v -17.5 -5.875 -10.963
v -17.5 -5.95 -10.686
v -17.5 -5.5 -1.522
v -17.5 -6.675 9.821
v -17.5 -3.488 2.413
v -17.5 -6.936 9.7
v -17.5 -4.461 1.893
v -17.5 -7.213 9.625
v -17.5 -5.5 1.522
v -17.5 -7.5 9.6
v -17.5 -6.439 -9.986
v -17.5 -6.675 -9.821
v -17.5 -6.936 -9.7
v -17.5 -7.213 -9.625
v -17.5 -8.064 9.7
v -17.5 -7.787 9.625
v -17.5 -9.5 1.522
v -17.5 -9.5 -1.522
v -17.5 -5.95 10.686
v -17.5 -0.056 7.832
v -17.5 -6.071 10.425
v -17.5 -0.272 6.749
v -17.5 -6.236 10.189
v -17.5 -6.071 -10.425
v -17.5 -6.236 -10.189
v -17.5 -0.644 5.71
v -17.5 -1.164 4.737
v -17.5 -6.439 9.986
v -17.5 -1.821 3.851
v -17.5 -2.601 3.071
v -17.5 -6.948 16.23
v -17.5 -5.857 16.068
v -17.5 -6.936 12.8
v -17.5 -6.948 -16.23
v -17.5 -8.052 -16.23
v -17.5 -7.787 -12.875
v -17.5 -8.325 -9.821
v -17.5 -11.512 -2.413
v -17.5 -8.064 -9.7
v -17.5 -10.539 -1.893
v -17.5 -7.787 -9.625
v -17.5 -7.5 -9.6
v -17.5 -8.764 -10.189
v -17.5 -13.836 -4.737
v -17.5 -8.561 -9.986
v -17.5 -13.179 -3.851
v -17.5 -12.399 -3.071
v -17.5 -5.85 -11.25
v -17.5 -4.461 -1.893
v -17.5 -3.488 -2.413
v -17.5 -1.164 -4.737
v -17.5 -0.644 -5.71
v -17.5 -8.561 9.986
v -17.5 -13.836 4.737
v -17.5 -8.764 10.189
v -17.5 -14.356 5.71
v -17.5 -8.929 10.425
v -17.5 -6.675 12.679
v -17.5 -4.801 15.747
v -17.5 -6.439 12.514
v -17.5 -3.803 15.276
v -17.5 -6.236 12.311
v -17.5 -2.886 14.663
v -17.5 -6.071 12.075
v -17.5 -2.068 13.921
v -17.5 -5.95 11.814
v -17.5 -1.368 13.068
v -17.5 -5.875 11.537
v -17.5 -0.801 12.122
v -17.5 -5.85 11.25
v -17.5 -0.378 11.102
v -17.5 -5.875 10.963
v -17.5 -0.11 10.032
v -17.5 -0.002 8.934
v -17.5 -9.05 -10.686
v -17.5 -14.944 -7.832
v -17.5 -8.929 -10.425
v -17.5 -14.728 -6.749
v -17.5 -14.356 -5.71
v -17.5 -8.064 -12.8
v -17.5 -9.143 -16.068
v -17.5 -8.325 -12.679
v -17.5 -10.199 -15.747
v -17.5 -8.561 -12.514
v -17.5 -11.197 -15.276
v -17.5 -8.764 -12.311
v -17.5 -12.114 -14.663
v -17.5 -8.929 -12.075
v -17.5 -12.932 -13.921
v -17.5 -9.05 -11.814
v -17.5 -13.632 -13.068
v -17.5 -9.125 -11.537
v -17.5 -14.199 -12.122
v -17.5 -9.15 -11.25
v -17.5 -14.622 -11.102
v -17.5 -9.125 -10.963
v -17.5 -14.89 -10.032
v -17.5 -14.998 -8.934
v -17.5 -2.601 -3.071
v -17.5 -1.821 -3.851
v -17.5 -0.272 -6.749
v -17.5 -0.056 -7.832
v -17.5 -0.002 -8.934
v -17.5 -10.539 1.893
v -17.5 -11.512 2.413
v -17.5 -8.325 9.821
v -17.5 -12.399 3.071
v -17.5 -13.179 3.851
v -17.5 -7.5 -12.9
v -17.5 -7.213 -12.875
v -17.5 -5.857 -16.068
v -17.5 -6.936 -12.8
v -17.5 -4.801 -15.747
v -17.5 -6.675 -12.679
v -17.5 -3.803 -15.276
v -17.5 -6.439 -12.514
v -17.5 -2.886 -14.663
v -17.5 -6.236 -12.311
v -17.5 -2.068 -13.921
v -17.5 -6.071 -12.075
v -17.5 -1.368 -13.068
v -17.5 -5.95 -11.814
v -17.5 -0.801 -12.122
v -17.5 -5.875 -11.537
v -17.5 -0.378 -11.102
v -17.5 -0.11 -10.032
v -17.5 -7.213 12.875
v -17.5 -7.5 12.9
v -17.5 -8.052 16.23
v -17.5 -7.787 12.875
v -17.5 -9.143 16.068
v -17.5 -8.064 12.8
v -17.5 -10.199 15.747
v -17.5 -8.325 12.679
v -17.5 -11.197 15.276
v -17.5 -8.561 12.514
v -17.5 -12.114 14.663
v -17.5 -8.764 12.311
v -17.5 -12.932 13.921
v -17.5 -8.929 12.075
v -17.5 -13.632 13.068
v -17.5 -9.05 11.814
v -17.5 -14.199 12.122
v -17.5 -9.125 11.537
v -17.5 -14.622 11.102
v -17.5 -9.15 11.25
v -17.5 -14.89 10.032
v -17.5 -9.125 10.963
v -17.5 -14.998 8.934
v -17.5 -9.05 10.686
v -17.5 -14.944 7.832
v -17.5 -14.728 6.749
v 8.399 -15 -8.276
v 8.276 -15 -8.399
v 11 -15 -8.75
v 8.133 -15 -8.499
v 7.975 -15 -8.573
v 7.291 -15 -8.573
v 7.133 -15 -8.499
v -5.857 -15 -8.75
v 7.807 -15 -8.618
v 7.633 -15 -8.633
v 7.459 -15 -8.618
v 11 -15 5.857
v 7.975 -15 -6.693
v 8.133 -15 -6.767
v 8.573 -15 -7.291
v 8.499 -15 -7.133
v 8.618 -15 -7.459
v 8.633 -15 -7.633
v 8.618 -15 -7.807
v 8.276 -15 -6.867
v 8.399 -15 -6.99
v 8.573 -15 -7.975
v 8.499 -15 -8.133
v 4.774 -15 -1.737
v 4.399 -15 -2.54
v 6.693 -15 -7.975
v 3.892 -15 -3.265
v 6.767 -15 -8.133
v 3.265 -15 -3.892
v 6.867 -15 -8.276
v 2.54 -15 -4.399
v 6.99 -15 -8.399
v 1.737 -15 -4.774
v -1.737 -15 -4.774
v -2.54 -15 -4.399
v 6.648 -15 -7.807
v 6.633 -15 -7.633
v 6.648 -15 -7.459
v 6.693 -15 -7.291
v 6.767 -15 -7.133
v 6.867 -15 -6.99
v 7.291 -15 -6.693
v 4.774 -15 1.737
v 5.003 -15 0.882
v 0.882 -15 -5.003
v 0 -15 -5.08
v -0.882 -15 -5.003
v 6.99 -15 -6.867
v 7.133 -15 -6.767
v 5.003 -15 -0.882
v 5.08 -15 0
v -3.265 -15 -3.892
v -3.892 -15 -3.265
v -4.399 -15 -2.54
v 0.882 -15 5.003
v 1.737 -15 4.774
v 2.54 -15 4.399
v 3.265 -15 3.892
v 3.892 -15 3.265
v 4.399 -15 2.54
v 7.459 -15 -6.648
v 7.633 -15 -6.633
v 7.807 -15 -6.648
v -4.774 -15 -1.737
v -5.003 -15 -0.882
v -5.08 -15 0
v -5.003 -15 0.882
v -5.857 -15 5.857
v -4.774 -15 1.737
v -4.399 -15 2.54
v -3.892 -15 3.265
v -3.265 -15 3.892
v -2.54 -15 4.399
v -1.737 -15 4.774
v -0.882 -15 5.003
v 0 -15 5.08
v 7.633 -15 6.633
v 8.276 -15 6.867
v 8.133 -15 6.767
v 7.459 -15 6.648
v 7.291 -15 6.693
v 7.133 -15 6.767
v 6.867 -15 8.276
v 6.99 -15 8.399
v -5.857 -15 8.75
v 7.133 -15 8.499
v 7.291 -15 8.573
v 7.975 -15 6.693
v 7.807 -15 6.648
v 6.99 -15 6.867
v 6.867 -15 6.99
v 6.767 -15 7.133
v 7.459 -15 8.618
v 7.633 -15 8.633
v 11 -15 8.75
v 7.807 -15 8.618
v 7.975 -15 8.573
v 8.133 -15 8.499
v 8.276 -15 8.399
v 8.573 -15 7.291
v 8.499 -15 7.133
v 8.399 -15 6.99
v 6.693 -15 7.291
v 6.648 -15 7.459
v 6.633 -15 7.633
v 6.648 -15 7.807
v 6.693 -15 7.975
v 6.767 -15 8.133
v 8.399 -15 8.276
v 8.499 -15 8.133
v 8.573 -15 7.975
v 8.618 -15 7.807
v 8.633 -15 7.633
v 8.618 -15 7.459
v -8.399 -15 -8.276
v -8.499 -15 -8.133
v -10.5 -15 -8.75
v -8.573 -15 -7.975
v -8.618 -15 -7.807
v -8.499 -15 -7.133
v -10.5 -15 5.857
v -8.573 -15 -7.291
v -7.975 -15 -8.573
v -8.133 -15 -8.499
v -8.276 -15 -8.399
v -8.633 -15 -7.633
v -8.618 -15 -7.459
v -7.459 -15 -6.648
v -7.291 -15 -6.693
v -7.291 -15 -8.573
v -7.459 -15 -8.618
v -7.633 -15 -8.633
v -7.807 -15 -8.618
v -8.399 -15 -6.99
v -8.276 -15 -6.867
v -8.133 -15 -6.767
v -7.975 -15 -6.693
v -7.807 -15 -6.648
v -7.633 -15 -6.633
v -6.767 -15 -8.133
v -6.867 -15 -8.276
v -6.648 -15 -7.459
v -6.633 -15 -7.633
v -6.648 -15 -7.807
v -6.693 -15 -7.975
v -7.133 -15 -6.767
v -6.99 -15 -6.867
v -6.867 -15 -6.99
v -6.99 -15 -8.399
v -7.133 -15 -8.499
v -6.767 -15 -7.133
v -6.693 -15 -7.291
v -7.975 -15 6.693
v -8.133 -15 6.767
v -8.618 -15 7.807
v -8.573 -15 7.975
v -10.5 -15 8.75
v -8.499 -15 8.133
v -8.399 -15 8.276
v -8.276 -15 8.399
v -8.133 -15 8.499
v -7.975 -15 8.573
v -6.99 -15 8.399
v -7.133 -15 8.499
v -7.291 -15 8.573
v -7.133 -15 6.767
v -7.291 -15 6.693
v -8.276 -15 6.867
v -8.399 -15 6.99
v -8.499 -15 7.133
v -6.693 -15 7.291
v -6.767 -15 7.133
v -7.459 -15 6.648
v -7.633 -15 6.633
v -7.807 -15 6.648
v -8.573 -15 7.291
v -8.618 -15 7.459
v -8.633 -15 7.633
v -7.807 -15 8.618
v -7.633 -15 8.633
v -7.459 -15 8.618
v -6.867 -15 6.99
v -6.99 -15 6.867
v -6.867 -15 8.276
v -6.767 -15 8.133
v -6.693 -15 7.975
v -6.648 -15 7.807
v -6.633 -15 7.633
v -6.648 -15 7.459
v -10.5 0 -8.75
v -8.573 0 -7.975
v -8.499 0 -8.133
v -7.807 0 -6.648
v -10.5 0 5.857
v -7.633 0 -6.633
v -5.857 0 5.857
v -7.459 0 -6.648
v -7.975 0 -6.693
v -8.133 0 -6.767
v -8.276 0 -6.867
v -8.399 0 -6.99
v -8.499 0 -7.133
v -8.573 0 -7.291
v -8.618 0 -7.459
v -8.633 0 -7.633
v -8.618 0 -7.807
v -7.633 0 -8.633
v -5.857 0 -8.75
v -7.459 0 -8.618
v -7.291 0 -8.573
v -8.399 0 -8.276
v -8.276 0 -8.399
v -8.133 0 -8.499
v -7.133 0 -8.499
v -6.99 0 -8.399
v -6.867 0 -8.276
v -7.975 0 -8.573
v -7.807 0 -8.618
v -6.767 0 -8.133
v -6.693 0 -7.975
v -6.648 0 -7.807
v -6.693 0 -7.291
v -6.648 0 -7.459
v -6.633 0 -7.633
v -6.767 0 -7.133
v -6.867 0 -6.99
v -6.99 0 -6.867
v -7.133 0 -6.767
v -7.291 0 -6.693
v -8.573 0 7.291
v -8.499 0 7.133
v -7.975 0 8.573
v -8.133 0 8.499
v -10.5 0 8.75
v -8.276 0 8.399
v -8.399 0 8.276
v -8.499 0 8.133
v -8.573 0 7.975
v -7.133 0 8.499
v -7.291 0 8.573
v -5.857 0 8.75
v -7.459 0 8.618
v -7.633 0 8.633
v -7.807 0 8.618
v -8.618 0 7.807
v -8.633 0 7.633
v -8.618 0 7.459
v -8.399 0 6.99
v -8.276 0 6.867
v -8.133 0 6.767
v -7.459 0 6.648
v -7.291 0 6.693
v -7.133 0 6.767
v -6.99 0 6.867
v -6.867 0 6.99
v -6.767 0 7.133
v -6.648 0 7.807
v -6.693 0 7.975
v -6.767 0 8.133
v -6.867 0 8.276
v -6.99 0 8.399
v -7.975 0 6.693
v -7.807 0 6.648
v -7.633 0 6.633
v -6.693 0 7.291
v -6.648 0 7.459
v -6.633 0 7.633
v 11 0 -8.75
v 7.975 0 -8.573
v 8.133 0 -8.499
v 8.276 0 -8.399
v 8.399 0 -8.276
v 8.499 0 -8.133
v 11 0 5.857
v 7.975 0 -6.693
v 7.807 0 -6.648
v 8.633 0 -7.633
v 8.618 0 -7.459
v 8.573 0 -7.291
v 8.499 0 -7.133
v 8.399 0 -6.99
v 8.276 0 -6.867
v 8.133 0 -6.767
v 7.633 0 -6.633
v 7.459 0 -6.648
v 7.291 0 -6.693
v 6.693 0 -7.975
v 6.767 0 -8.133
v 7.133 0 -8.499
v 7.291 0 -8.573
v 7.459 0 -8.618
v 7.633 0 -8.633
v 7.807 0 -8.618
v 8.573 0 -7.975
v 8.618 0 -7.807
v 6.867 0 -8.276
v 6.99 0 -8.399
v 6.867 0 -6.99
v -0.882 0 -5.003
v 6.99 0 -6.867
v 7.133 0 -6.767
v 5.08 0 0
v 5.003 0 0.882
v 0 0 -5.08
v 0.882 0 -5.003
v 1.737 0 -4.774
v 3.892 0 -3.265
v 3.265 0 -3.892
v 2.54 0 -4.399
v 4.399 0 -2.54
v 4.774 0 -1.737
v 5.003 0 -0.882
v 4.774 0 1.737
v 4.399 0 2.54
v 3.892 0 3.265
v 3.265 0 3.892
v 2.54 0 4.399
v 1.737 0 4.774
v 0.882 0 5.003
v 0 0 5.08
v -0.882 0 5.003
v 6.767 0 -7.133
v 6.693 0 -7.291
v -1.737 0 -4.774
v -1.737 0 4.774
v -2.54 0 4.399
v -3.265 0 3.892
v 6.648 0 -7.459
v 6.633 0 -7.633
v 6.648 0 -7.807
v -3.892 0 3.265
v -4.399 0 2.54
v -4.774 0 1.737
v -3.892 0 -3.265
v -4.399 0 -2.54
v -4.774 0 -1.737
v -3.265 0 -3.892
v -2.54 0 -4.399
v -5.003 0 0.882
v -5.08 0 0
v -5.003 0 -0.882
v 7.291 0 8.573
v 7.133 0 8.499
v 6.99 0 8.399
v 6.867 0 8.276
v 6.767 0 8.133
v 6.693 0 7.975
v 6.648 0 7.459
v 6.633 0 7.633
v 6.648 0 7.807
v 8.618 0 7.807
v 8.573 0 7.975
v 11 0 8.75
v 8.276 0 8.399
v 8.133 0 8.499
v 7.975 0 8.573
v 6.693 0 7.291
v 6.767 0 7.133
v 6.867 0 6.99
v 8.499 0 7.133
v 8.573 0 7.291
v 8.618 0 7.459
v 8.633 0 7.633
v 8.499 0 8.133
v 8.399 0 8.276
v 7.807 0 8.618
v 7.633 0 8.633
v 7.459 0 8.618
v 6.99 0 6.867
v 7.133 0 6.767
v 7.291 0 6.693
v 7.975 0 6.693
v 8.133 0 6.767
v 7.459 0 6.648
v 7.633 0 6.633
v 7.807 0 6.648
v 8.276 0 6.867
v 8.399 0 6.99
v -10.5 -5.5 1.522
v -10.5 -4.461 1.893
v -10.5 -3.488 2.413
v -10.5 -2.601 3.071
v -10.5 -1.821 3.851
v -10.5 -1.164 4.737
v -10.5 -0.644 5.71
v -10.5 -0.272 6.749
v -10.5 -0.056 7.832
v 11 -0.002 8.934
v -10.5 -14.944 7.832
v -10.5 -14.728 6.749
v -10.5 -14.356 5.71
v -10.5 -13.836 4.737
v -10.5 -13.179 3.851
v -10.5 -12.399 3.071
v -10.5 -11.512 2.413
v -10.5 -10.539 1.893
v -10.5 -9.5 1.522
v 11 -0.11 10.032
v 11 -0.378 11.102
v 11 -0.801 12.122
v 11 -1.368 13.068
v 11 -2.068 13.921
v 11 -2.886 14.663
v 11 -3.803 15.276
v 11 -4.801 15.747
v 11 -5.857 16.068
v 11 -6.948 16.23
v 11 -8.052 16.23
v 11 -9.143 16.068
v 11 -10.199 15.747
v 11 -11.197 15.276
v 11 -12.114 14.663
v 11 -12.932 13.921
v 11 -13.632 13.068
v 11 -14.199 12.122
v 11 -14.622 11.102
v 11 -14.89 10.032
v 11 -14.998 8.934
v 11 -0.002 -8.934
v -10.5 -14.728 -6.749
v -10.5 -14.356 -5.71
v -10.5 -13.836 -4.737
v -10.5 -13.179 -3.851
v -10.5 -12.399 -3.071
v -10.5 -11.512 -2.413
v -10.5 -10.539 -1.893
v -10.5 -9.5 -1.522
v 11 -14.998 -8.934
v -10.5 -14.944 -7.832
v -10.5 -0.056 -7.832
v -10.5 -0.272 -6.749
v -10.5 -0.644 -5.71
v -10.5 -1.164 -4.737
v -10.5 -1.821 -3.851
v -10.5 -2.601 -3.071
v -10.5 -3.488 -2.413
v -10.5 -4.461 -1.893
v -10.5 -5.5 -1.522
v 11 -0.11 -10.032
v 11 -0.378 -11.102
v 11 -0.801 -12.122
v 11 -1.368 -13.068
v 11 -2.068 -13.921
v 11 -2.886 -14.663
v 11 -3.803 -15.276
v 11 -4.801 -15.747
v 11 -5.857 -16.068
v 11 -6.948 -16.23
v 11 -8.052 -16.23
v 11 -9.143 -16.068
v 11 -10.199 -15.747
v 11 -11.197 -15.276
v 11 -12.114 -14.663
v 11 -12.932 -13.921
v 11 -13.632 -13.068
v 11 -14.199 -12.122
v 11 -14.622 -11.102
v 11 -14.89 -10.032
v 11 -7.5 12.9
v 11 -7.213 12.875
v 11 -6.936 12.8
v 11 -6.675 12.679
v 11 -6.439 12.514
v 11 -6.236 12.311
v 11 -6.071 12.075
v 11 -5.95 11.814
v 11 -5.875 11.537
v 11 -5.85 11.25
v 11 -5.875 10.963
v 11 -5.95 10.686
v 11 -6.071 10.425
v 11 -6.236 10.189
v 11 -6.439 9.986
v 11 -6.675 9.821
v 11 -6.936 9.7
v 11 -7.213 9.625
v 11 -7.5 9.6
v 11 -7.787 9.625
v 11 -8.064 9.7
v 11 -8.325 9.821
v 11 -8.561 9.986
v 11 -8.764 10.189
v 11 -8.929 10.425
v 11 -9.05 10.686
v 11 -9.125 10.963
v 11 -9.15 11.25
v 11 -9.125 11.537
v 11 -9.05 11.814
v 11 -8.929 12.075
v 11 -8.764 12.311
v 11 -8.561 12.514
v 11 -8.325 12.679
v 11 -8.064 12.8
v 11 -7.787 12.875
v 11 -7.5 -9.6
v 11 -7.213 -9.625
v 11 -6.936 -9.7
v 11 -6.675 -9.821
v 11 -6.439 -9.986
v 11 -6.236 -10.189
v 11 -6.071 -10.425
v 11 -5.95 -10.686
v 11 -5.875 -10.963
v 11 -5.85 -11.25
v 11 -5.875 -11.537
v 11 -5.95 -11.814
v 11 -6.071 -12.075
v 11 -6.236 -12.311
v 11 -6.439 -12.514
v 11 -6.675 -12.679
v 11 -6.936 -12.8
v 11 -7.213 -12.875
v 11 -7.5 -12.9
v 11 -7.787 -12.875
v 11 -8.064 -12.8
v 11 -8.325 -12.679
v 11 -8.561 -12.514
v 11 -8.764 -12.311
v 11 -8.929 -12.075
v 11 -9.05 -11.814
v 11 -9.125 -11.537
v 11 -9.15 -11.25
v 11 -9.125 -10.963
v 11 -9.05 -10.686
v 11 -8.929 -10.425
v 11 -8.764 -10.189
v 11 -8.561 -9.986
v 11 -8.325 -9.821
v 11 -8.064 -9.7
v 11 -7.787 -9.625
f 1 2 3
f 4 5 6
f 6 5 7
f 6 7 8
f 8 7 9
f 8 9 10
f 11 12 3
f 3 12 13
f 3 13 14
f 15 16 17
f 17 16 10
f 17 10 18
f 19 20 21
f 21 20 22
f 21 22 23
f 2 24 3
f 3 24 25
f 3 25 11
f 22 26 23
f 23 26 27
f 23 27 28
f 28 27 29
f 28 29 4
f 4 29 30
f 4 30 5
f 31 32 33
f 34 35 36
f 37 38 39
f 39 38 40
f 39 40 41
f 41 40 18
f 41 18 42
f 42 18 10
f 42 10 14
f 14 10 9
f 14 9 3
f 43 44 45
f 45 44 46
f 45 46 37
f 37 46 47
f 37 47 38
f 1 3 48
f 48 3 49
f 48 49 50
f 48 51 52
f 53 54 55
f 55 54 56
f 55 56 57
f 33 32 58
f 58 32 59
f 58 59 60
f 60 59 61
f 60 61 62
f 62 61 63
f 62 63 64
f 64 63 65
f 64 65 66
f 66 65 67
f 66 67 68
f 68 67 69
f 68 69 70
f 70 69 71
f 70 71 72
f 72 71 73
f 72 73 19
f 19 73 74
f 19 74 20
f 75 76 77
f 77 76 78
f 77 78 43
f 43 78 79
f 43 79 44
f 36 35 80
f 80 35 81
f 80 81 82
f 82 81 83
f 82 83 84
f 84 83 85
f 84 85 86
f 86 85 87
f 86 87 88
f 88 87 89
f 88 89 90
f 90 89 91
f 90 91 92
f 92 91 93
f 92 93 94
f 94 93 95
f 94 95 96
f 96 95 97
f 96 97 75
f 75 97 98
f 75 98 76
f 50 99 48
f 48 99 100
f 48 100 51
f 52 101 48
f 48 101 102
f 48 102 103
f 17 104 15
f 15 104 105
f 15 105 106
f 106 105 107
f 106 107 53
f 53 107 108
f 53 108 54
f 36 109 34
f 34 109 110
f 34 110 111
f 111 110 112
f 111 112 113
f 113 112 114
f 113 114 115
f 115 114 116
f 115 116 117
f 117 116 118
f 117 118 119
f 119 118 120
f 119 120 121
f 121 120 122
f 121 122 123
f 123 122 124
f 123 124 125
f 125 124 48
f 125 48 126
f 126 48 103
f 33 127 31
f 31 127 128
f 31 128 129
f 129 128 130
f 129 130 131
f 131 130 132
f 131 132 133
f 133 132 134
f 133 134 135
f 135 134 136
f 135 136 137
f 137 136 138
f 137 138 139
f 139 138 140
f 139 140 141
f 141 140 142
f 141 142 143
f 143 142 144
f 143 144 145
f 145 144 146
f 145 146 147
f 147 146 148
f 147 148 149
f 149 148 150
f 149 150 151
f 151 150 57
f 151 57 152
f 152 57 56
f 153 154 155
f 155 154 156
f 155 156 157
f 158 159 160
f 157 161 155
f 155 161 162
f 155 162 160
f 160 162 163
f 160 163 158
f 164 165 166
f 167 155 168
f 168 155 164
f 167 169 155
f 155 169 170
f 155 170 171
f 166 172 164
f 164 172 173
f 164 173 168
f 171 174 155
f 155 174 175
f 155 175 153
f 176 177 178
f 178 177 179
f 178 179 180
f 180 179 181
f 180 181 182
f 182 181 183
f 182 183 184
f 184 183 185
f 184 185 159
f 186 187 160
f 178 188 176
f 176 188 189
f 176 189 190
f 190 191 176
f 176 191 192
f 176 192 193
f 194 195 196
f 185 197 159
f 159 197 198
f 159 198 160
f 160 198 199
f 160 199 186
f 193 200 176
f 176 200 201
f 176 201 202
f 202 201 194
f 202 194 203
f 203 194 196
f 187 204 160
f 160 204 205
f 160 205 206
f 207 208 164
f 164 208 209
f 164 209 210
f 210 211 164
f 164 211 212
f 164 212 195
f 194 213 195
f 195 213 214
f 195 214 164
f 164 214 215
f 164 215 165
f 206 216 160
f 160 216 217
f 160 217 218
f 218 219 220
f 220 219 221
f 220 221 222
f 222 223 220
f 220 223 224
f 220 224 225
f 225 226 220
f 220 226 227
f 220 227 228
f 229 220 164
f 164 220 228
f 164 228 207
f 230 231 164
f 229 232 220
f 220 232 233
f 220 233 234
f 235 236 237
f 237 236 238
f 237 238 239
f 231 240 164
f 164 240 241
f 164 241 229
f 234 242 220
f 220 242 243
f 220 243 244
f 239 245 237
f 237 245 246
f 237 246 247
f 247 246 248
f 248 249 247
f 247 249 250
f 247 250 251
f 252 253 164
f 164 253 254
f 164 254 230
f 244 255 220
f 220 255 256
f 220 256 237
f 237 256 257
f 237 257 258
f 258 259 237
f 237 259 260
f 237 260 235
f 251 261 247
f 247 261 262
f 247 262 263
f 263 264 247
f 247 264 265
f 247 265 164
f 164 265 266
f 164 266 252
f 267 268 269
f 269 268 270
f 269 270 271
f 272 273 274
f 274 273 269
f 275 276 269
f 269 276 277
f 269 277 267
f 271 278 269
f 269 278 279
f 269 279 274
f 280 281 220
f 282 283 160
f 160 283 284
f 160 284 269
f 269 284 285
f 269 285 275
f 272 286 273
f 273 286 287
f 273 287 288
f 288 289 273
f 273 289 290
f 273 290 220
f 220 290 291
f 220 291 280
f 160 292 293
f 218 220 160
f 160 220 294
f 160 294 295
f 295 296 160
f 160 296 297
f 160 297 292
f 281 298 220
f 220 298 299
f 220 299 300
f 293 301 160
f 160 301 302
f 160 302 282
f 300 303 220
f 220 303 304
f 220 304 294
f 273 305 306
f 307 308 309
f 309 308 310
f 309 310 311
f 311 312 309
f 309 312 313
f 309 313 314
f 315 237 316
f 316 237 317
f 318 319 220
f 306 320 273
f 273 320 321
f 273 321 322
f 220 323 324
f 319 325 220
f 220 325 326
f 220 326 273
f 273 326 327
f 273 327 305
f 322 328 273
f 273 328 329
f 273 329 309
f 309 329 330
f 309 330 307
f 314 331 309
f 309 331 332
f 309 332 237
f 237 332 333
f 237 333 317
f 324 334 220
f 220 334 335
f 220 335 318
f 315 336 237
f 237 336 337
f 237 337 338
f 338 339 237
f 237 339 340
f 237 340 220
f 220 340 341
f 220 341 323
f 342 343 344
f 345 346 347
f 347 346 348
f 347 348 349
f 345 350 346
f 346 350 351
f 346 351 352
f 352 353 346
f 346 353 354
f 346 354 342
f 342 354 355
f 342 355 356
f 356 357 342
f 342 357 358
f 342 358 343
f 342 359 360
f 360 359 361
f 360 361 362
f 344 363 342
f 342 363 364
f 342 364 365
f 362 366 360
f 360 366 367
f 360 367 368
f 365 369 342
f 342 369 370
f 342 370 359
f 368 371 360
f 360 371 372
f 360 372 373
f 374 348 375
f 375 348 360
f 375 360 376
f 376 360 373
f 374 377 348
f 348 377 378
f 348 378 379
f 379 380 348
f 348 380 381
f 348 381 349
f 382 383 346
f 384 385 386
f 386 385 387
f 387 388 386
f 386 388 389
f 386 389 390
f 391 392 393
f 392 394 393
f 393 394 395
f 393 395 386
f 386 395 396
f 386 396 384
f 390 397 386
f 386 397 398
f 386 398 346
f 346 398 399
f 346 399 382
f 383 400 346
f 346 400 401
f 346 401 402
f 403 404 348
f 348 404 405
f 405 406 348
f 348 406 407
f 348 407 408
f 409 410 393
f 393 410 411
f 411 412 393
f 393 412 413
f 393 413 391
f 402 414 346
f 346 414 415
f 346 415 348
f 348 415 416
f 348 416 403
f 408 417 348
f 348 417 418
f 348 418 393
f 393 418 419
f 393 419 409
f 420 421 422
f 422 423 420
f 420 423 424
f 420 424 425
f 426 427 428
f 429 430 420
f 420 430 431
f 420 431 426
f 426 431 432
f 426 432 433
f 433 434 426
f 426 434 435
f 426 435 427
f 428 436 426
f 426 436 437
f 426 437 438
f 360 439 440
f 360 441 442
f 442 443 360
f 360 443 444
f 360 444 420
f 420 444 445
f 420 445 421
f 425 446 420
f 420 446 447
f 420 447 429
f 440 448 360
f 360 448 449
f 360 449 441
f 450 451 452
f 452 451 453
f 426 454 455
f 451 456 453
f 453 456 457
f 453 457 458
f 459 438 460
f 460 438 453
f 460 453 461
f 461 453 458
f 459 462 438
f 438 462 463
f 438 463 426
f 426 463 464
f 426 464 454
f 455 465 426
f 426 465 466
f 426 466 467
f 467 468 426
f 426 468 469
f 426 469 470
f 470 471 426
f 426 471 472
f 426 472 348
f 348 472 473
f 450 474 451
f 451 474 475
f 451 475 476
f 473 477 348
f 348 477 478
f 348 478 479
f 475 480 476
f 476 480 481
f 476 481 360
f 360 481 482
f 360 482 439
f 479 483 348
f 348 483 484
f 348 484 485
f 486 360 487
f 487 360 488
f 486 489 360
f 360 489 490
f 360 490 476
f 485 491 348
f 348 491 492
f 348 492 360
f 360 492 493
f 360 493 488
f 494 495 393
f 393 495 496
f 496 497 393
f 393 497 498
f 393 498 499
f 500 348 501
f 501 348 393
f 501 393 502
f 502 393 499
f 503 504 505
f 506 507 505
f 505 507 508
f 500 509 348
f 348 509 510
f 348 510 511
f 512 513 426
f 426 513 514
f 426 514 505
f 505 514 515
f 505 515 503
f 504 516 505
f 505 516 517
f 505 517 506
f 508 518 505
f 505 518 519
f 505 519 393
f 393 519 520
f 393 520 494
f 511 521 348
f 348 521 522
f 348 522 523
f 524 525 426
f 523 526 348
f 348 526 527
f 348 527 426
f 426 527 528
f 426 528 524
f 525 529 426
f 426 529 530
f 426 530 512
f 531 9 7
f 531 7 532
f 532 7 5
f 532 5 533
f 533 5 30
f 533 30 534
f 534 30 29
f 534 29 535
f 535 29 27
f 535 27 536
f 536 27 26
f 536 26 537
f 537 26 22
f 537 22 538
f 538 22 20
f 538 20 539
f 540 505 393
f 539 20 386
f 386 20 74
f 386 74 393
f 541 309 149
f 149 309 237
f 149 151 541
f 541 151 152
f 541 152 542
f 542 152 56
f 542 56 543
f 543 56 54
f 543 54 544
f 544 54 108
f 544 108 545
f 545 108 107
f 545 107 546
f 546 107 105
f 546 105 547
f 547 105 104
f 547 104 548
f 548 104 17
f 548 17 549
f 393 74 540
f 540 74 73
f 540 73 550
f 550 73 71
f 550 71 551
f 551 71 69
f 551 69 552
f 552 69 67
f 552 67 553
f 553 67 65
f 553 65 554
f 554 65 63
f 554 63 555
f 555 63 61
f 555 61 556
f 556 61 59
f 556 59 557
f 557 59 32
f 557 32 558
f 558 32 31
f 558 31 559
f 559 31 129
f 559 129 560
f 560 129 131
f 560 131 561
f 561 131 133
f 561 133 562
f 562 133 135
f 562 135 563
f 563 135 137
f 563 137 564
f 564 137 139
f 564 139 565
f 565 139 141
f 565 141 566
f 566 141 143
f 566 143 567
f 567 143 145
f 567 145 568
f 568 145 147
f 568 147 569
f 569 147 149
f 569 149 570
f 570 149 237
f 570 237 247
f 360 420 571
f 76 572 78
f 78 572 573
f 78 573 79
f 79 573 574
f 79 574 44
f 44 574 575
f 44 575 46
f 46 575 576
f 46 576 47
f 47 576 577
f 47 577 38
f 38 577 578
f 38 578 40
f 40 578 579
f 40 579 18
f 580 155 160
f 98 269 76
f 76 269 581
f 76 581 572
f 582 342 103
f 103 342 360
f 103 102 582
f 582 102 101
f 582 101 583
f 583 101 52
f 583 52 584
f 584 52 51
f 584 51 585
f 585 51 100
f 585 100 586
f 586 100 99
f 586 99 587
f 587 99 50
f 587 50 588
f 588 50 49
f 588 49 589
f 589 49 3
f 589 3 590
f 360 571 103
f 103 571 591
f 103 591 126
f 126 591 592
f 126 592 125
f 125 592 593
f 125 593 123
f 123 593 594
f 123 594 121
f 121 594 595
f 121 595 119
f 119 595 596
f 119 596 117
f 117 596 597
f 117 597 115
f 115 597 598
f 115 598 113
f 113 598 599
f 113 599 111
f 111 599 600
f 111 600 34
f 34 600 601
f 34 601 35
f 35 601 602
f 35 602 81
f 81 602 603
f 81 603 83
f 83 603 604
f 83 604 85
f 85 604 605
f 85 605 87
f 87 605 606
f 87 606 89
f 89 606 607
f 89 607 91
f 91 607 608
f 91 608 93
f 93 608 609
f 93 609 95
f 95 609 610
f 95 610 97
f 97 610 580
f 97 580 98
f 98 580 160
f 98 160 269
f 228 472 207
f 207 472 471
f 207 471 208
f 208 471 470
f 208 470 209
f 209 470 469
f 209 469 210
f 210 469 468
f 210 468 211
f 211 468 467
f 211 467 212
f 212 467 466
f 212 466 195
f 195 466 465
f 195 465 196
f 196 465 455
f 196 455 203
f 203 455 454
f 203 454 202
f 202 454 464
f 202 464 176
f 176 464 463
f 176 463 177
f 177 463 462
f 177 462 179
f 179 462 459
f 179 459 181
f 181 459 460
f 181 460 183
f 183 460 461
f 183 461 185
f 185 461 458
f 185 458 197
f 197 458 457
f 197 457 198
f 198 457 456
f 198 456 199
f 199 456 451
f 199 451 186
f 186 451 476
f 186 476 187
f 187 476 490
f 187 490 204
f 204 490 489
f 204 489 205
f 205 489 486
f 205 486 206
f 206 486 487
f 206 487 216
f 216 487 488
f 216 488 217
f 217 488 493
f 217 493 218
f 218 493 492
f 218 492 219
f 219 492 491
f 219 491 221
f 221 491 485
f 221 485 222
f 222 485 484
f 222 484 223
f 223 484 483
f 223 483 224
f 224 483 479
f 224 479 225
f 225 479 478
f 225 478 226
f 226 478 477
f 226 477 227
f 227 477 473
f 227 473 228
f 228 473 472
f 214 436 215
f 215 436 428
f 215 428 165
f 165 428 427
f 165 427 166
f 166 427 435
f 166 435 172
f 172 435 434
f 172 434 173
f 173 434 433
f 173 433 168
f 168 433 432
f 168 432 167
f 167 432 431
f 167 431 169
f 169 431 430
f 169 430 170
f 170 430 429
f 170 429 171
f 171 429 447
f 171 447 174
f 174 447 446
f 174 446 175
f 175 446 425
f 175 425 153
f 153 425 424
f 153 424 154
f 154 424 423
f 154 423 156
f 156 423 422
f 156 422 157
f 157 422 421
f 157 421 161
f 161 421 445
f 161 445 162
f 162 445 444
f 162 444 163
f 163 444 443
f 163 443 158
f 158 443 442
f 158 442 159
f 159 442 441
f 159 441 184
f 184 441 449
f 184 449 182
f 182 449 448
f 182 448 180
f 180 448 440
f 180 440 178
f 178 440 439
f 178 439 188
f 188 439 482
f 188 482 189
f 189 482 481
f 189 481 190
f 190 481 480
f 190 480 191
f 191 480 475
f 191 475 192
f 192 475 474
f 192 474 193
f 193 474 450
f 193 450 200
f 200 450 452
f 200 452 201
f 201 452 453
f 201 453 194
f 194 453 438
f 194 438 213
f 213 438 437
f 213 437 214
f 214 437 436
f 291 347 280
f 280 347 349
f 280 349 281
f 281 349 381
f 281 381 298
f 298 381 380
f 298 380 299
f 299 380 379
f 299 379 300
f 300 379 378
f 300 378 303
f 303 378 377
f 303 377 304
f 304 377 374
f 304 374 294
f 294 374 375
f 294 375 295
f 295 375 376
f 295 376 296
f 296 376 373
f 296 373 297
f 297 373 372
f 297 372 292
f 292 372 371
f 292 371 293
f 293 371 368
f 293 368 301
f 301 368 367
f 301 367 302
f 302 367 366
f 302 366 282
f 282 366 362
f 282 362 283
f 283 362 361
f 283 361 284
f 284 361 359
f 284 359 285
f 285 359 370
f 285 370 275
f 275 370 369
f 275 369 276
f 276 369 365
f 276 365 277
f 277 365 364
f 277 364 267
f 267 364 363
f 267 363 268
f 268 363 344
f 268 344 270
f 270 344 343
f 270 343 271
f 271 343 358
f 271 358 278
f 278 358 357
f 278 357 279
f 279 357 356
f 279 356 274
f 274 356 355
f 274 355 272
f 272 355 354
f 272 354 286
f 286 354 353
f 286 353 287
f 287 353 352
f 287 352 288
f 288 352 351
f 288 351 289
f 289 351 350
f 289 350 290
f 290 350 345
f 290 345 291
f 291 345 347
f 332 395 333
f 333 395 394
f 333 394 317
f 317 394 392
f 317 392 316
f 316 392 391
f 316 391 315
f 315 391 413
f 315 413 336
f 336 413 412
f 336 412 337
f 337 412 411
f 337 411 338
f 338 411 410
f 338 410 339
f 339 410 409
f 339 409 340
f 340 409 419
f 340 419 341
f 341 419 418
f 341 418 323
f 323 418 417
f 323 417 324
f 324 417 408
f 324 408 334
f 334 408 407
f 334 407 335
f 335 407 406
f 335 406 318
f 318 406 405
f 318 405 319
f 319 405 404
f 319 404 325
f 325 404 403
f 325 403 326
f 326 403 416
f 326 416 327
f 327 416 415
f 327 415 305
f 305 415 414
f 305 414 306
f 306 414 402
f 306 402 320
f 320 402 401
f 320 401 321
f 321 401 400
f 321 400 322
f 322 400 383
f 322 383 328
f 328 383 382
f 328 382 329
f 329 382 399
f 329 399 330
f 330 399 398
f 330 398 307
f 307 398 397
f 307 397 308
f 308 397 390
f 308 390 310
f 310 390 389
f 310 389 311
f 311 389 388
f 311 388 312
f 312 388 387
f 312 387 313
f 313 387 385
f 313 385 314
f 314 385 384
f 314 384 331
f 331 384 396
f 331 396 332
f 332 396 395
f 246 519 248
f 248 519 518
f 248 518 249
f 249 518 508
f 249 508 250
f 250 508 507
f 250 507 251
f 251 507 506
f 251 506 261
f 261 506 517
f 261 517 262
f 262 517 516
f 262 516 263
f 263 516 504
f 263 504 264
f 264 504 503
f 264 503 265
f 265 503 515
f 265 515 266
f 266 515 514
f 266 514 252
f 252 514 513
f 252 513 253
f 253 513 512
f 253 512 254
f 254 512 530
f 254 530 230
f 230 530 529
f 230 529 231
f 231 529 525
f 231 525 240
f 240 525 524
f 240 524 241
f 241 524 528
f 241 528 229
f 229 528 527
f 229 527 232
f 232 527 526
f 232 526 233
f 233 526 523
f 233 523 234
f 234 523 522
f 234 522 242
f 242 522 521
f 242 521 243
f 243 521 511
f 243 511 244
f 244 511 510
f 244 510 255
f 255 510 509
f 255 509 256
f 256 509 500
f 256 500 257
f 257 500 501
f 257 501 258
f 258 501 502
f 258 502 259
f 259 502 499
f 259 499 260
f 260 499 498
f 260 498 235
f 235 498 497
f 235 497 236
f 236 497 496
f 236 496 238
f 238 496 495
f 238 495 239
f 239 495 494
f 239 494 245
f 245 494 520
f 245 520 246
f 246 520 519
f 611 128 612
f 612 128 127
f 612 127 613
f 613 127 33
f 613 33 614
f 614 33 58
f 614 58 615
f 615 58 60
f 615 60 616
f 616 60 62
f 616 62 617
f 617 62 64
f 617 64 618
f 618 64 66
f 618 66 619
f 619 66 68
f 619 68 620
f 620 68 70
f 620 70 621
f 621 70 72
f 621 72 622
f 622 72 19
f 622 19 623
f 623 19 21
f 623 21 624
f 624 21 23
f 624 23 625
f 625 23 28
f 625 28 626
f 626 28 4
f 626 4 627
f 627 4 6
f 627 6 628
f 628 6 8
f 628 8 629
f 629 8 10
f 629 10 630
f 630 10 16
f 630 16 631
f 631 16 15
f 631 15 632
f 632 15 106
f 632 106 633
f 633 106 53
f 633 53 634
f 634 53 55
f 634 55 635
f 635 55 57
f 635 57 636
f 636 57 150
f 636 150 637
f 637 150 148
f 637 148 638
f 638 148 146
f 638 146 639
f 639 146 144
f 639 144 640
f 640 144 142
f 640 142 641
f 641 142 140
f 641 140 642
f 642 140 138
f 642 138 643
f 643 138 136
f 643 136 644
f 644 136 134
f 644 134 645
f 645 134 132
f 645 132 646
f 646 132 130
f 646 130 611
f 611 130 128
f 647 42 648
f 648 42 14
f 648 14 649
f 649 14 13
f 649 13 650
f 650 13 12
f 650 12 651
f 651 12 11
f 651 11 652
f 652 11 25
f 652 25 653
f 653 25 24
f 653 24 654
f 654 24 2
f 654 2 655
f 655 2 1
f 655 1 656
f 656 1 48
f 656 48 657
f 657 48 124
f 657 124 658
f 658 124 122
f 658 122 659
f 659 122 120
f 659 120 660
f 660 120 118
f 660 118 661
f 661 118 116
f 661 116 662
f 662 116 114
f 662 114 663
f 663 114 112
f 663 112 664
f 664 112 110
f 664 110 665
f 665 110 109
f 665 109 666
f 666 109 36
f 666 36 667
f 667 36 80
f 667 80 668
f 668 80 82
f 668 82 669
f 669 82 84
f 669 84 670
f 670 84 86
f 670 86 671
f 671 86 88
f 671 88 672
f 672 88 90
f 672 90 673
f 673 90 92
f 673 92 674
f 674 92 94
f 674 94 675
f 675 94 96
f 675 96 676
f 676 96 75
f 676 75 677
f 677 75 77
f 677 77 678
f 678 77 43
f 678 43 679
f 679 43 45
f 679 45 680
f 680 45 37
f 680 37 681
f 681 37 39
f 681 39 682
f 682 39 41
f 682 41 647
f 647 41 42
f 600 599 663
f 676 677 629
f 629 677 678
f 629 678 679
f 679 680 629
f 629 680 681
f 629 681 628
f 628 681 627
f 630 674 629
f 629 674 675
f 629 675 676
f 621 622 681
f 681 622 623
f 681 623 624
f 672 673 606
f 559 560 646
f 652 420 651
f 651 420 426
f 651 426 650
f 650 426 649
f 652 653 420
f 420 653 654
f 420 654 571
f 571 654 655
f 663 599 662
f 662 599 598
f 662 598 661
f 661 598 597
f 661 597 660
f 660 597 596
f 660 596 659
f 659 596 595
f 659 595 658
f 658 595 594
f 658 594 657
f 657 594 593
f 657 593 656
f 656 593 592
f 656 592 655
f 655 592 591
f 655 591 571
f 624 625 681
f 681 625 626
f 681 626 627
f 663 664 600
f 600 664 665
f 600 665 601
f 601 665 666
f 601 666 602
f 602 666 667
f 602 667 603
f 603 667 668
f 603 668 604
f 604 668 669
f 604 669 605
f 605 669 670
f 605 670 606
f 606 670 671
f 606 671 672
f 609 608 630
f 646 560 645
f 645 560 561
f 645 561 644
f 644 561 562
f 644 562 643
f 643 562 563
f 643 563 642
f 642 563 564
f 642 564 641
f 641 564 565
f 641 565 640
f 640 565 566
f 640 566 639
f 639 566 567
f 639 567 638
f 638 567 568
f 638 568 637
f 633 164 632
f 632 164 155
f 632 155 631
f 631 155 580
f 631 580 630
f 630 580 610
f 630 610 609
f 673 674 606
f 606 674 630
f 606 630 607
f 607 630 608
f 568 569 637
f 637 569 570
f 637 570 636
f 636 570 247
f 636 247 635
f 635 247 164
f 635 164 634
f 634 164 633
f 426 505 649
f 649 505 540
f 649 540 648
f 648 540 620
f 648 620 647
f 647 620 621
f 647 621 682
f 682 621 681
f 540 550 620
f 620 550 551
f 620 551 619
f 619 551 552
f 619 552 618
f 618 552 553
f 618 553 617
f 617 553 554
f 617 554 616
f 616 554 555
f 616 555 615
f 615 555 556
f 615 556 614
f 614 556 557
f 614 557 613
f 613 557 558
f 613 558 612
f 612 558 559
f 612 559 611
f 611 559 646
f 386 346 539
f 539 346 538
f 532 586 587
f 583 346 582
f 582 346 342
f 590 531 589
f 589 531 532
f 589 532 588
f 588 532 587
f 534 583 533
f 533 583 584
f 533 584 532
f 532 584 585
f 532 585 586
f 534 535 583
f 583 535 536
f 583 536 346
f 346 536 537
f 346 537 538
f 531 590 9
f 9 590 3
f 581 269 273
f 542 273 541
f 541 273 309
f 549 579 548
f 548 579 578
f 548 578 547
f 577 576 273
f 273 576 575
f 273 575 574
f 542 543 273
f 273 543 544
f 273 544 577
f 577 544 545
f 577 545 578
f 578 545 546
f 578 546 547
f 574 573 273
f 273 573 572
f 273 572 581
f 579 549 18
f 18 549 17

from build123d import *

# Parameters (mm, degrees)
SKETCH1_W             = 35
SKETCH1_H             = 32.5
BOSS_EXTRUDE1_DEPTH   = 15
SKETCH2_R             = 5.08
CUT_EXTRUDE2_DEPTH    = 30
SKETCH4_R             = 1
CUT_EXTRUDE3_DEPTH    = 15
M4X0_7_TAPPED_HOLE1_D = 3.3
FILLET1_RADIUS        = 7.5
FILLET1_LENGTH        = 35
FILLET2_RADIUS        = 7.5
FILLET2_LENGTH        = 35
SKETCH19_W            = 6.5
SKETCH19_H            = 32.5
CUT_EXTRUDE13_DEPTH   = 29.201285432
CUT_EXTRUDE14_START   = -7
CUT_EXTRUDE14_DEPTH   = 7


# Read off the part's stored shape, not the designer's step: Cut-Extrude14
with BuildPart() as part:
    # Sketch1 → Boss-Extrude1 (new body)
    with BuildSketch(Plane(origin=(0, 0, 0), x_dir=(1, 0, 0), z_dir=(0, 1, 0))):
        Rectangle(SKETCH1_W, SKETCH1_H)
    extrude(amount=-BOSS_EXTRUDE1_DEPTH)

    # Sketch2 → Cut-Extrude2 (cut)
    with BuildSketch(Plane(origin=(0, 0, 0), x_dir=(1, 0, 0), z_dir=(0, 1, 0))):
        with Locations(Location((0, 0, 0), (0, 0, 270))):
            Circle(SKETCH2_R)
    extrude(amount=-CUT_EXTRUDE2_DEPTH, mode=Mode.SUBTRACT)

    # Sketch4 → Cut-Extrude3 (cut)
    with BuildSketch(Plane(origin=(0, 0, 0), x_dir=(1, 0, 0), z_dir=(0, 1, 0))):
        with Locations(Location((7.633, 7.633, 0), (0, 0, 270))):
            Circle(SKETCH4_R)
        with Locations(Location((-7.633, 7.633, 0), (0, 0, 270))):
            Circle(SKETCH4_R)
        with Locations(Location((-7.633, -7.633, 0), (0, 0, 270))):
            Circle(SKETCH4_R)
        with Locations(Location((7.633, -7.633, 0), (0, 0, 270))):
            Circle(SKETCH4_R)
    extrude(amount=-CUT_EXTRUDE3_DEPTH, mode=Mode.SUBTRACT)

    # M4x0.7 Tapped Hole1 (through all)
    with Locations(Plane(origin=(-17.5, 0, 0), x_dir=(0, -1, 0), z_dir=(-1, 0, 0))):
        with Locations((7.5, -11.25), (7.5, 11.25)):
            Hole(M4X0_7_TAPPED_HOLE1_D / 2)

    # Fillet1: full round fillet: the end face becomes a half cylinder, R = half its width
    fillet1_face = Plane((0, -7.5, -16.25), x_dir=(1, 0, 0), z_dir=(0, 0, -1))  # on the end face: x along it, z out of the body
    fillet1_slab = fillet1_face.offset(-FILLET1_RADIUS / 2) * Box(FILLET1_LENGTH, 2 * FILLET1_RADIUS, FILLET1_RADIUS, mode=Mode.PRIVATE)  # the body's end, R deep
    fillet1_round = Plane((0, -7.5, -8.75), x_dir=(0, 0, -1), z_dir=(1, 0, 0)) * Cylinder(FILLET1_RADIUS, FILLET1_LENGTH, mode=Mode.PRIVATE)  # its axis R under the face
    add(fillet1_slab - fillet1_round, mode=Mode.SUBTRACT)

    # Fillet2: full round fillet: the end face becomes a half cylinder, R = half its width
    fillet2_face = Plane((0, -7.5, 16.25), x_dir=(1, 0, 0), z_dir=(0, 0, 1))  # on the end face: x along it, z out of the body
    fillet2_slab = fillet2_face.offset(-FILLET2_RADIUS / 2) * Box(FILLET2_LENGTH, 2 * FILLET2_RADIUS, FILLET2_RADIUS, mode=Mode.PRIVATE)  # the body's end, R deep
    fillet2_round = Plane((0, -7.5, 8.75), x_dir=(0, 0, 1), z_dir=(1, 0, 0)) * Cylinder(FILLET2_RADIUS, FILLET2_LENGTH, mode=Mode.PRIVATE)  # its axis R under the face
    add(fillet2_slab - fillet2_round, mode=Mode.SUBTRACT)

    # Sketch19 → Cut-Extrude13 (cut, through all)
    with BuildSketch(Plane.XZ.offset(15)):
        with Locations((14.25, 0)):
            Rectangle(SKETCH19_W, SKETCH19_H)
    extrude(amount=-CUT_EXTRUDE13_DEPTH, mode=Mode.SUBTRACT)

    # Cut-Extrude14 outline → Cut-Extrude14 (cut)
    with BuildSketch(Plane.ZY.offset(17.5).offset(CUT_EXTRUDE14_START)):
        with BuildLine():
            Line((-1.521583853, -5.5), (1.521583853, -5.5))
            ThreePointArc((1.521583853, -5.5), (4.208524469, -1.531331807), (8.75, 0))
            Line((8.75, 0), (-8.75, 0))
            ThreePointArc((-8.75, 0), (-4.208524469, -1.531331807), (-1.521583853, -5.5))
        make_face()
        with BuildLine():
            Line((-8.75, -15), (8.75, -15))
            ThreePointArc((8.75, -15), (4.208524469, -13.468668193), (1.521583853, -9.5))
            Line((1.521583853, -9.5), (-1.521583853, -9.5))
            ThreePointArc((-1.521583853, -9.5), (-4.208524469, -13.468668193), (-8.75, -15))
        make_face()
    extrude(amount=CUT_EXTRUDE14_DEPTH, mode=Mode.SUBTRACT)


solid = part.part
